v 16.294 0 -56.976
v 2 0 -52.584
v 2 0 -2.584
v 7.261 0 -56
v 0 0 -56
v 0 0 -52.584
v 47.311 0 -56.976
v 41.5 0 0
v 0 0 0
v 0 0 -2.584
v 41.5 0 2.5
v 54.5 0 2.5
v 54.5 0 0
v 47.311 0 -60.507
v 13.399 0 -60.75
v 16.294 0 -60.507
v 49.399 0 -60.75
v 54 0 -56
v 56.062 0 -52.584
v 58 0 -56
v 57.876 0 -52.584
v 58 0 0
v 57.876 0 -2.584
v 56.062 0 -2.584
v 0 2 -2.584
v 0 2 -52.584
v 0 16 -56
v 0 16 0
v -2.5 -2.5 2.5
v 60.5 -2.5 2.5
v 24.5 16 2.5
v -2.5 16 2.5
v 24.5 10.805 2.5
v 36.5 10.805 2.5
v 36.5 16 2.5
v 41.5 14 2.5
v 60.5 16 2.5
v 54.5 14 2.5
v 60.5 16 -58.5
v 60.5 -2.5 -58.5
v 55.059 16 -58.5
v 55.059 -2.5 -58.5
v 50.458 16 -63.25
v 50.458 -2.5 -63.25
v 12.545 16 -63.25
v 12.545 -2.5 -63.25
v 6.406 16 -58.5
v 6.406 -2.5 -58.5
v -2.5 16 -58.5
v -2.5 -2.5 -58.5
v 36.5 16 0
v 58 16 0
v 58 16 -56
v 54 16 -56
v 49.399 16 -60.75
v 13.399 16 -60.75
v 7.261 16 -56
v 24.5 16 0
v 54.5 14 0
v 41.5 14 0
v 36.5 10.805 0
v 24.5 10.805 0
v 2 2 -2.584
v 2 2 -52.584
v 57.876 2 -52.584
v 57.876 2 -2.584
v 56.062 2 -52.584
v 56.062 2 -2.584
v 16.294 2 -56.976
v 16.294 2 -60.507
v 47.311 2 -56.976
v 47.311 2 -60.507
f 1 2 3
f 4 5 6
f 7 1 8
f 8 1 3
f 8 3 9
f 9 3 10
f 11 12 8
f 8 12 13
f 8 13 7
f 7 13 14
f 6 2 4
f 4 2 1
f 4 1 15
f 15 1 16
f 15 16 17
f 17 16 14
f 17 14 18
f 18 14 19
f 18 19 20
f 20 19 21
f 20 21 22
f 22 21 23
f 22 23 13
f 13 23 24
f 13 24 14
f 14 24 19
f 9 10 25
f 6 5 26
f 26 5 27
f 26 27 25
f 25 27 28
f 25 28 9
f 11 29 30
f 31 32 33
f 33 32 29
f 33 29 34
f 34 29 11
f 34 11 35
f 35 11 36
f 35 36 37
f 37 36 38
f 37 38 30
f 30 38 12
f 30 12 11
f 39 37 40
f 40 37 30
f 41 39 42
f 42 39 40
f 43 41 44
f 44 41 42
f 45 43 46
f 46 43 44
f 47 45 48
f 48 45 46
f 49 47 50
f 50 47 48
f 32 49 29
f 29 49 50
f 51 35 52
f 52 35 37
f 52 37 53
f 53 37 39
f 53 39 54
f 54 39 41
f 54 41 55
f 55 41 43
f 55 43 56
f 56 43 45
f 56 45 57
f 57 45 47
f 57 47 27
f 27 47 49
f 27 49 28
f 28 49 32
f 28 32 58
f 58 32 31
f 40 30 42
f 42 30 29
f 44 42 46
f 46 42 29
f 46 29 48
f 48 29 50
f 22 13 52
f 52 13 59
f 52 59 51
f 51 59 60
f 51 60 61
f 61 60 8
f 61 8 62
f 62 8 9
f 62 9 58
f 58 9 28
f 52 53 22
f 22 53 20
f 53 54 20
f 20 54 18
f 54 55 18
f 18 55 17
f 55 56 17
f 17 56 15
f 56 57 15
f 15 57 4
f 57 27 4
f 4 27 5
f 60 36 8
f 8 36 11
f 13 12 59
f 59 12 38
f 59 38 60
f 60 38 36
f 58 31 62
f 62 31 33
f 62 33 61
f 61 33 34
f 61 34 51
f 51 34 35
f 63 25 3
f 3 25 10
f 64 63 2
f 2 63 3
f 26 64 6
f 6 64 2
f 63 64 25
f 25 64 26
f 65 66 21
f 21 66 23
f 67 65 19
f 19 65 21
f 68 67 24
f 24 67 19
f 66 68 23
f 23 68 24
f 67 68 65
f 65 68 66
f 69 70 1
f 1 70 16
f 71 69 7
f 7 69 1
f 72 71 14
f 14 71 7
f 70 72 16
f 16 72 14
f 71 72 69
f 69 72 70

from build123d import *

# Parameters (mm, degrees)
BOSS_EXTRUDE1_DEPTH = 16
SHELL1_T            = 2.5
SKETCH2_W           = 13
SKETCH2_H           = 14
SKETCH2_W_2         = 12
SKETCH2_H_2         = 5.195244662
CUT_EXTRUDE1_DEPTH  = 4
SKETCH3_W           = 2
SKETCH3_H           = 50
SKETCH3_W_2         = 1.814522713
BOSS_EXTRUDE2_DEPTH = 2
SKETCH4_W           = 31.017616101
SKETCH4_H           = 3.530460369
BOSS_EXTRUDE3_DEPTH = 2


with BuildPart() as part:
    # Sketch1 → Boss-Extrude1 (new body)
    with BuildSketch(Plane(origin=(0, 0, 0), x_dir=(1, 0, 0), z_dir=(0, 1, 0))):
        Polygon((0, 0), (0, 56), (7.260584432, 56), (13.399361706, 60.750217247), (49.399361706, 60.750217247), (54, 56), (58, 56), (58, 0), align=None)
    extrude(amount=BOSS_EXTRUDE1_DEPTH)

    # Shell1
    shell1_openings = [part.faces().sort_by_distance(p)[0] for p in [
        (29.113999919, 16, -29.727085855),
    ]]
    offset(amount=SHELL1_T, openings=shell1_openings, kind=Kind.INTERSECTION)

    # Sketch2 → Cut-Extrude1 (cut)
    with BuildSketch(Plane(origin=(0, 0, 0), x_dir=(-1, 0, 0), z_dir=(0, 0, -1))):
        with Locations((-48, 7)):
            Rectangle(SKETCH2_W, SKETCH2_H)
        with Locations((-30.5, 13.402377669)):
            Rectangle(SKETCH2_W_2, SKETCH2_H_2)
    extrude(amount=-CUT_EXTRUDE1_DEPTH, mode=Mode.SUBTRACT)

    # Sketch3 → Boss-Extrude2 (add)
    with BuildSketch(Plane(origin=(0, 0, 0), x_dir=(1, 0, 0), z_dir=(0, 1, 0))):
        with Locations((1, 27.58353092)):
            Rectangle(SKETCH3_W, SKETCH3_H)
        with Locations((56.968981121, 27.58353092)):
            Rectangle(SKETCH3_W_2, SKETCH3_H)
    extrude(amount=BOSS_EXTRUDE2_DEPTH)

    # Sketch4 → Boss-Extrude3 (add)
    with BuildSketch(Plane(origin=(0, 0, 0), x_dir=(1, 0, 0), z_dir=(0, 1, 0))):
        with Locations((31.80262956, 58.741489624)):
            Rectangle(SKETCH4_W, SKETCH4_H)
    extrude(amount=BOSS_EXTRUDE3_DEPTH)


solid = part.part
